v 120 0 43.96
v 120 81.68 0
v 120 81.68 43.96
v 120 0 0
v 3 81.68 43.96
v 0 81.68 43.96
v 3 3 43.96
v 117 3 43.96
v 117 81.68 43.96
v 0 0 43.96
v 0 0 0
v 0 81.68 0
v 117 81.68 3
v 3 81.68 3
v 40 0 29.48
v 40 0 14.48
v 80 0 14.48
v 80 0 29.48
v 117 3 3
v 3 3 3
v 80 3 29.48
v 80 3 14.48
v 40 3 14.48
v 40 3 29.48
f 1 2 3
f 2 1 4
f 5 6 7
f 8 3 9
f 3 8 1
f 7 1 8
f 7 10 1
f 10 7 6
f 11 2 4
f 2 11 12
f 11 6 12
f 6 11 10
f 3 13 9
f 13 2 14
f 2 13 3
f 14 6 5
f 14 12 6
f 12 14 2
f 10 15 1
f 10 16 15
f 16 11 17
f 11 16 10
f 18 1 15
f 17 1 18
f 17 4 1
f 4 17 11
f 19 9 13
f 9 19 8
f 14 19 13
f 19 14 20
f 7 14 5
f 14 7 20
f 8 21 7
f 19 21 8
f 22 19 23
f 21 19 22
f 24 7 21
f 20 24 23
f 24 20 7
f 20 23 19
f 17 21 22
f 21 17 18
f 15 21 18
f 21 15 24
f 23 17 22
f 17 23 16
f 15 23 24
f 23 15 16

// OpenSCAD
/* doodle-meta {"version":1,"parameters":{"width":{"label":"Overall width","description":"Changes the body width","unit":"mm","feature":"body_width"},"depth":{"label":"Overall depth","description":"Changes the body depth","unit":"mm","feature":"body_depth"},"height":{"label":"Overall height","description":"Changes the body height","unit":"mm","feature":"body_height"},"wall_thickness":{"label":"Wall thickness","description":"Thickness of the enclosure walls","unit":"mm","feature":"wall"},"window_width":{"label":"Window width","description":"Width of the front window cutout","unit":"mm","feature":"window"},"window_height":{"label":"Window height","description":"Height of the front window cutout","unit":"mm","feature":"window"},"window_center_z":{"label":"Window center height","description":"Vertical position of the window center from the bottom","unit":"mm","feature":"window"}},"features":{"body_width":{"kind":"dimension","axis":"x","label":"Overall width"},"body_depth":{"kind":"dimension","axis":"y","label":"Overall depth"},"body_height":{"kind":"dimension","axis":"z","label":"Overall height"},"wall":{"kind":"region","label":"Wall thickness","min":[0,0,0],"max":[{"parameter":"width","scale":0.5,"offset":0},{"parameter":"depth","scale":0.5,"offset":0},{"parameter":"height","scale":1,"offset":0}]},"window":{"kind":"region","label":"Front window","min":[{"parameter":"width","scale":0.5,"offset":-0.2475},{"parameter":"depth","scale":0,"offset":0},{"parameter":"window_center_z","scale":1,"offset":-0.2924}],"max":[{"parameter":"width","scale":0.5,"offset":0.2475},{"parameter":"depth","scale":1,"offset":0},{"parameter":"window_center_z","scale":1,"offset":0.2924}]}}} */

// Top-level parameters (user-editable)
width = 120.0;
depth = 81.68;
height = 43.96;
wall_thickness = 3.0;
window_width = 40.0;
window_height = 15.0;
window_center_z = 21.98;

// Derived constants (not user-editable)
eps = 0.01;

// Main design
module enclosure() {
    difference() {
        // Outer solid box
        cube([width, depth, height], center=false);
        
        // Internal cavity for open-top shell
        // Cavity starts at wall_thickness from bottom, sides, and back
        // Top is open (no top wall)
        translate([wall_thickness, wall_thickness, wall_thickness]) {
            cube([width - 2*wall_thickness, depth - wall_thickness, height - wall_thickness], center=false);
        }
        
        // Front window cutout
        // Centered in X, centered in Z at window_center_z
        // Cuts completely through the front wall (Y from -eps to depth+eps)
        translate([width/2, -eps, window_center_z]) {
            cube([window_width, depth + 2*eps, window_height], center=true);
        }
    }
}

// Instantiate the design
enclosure();
